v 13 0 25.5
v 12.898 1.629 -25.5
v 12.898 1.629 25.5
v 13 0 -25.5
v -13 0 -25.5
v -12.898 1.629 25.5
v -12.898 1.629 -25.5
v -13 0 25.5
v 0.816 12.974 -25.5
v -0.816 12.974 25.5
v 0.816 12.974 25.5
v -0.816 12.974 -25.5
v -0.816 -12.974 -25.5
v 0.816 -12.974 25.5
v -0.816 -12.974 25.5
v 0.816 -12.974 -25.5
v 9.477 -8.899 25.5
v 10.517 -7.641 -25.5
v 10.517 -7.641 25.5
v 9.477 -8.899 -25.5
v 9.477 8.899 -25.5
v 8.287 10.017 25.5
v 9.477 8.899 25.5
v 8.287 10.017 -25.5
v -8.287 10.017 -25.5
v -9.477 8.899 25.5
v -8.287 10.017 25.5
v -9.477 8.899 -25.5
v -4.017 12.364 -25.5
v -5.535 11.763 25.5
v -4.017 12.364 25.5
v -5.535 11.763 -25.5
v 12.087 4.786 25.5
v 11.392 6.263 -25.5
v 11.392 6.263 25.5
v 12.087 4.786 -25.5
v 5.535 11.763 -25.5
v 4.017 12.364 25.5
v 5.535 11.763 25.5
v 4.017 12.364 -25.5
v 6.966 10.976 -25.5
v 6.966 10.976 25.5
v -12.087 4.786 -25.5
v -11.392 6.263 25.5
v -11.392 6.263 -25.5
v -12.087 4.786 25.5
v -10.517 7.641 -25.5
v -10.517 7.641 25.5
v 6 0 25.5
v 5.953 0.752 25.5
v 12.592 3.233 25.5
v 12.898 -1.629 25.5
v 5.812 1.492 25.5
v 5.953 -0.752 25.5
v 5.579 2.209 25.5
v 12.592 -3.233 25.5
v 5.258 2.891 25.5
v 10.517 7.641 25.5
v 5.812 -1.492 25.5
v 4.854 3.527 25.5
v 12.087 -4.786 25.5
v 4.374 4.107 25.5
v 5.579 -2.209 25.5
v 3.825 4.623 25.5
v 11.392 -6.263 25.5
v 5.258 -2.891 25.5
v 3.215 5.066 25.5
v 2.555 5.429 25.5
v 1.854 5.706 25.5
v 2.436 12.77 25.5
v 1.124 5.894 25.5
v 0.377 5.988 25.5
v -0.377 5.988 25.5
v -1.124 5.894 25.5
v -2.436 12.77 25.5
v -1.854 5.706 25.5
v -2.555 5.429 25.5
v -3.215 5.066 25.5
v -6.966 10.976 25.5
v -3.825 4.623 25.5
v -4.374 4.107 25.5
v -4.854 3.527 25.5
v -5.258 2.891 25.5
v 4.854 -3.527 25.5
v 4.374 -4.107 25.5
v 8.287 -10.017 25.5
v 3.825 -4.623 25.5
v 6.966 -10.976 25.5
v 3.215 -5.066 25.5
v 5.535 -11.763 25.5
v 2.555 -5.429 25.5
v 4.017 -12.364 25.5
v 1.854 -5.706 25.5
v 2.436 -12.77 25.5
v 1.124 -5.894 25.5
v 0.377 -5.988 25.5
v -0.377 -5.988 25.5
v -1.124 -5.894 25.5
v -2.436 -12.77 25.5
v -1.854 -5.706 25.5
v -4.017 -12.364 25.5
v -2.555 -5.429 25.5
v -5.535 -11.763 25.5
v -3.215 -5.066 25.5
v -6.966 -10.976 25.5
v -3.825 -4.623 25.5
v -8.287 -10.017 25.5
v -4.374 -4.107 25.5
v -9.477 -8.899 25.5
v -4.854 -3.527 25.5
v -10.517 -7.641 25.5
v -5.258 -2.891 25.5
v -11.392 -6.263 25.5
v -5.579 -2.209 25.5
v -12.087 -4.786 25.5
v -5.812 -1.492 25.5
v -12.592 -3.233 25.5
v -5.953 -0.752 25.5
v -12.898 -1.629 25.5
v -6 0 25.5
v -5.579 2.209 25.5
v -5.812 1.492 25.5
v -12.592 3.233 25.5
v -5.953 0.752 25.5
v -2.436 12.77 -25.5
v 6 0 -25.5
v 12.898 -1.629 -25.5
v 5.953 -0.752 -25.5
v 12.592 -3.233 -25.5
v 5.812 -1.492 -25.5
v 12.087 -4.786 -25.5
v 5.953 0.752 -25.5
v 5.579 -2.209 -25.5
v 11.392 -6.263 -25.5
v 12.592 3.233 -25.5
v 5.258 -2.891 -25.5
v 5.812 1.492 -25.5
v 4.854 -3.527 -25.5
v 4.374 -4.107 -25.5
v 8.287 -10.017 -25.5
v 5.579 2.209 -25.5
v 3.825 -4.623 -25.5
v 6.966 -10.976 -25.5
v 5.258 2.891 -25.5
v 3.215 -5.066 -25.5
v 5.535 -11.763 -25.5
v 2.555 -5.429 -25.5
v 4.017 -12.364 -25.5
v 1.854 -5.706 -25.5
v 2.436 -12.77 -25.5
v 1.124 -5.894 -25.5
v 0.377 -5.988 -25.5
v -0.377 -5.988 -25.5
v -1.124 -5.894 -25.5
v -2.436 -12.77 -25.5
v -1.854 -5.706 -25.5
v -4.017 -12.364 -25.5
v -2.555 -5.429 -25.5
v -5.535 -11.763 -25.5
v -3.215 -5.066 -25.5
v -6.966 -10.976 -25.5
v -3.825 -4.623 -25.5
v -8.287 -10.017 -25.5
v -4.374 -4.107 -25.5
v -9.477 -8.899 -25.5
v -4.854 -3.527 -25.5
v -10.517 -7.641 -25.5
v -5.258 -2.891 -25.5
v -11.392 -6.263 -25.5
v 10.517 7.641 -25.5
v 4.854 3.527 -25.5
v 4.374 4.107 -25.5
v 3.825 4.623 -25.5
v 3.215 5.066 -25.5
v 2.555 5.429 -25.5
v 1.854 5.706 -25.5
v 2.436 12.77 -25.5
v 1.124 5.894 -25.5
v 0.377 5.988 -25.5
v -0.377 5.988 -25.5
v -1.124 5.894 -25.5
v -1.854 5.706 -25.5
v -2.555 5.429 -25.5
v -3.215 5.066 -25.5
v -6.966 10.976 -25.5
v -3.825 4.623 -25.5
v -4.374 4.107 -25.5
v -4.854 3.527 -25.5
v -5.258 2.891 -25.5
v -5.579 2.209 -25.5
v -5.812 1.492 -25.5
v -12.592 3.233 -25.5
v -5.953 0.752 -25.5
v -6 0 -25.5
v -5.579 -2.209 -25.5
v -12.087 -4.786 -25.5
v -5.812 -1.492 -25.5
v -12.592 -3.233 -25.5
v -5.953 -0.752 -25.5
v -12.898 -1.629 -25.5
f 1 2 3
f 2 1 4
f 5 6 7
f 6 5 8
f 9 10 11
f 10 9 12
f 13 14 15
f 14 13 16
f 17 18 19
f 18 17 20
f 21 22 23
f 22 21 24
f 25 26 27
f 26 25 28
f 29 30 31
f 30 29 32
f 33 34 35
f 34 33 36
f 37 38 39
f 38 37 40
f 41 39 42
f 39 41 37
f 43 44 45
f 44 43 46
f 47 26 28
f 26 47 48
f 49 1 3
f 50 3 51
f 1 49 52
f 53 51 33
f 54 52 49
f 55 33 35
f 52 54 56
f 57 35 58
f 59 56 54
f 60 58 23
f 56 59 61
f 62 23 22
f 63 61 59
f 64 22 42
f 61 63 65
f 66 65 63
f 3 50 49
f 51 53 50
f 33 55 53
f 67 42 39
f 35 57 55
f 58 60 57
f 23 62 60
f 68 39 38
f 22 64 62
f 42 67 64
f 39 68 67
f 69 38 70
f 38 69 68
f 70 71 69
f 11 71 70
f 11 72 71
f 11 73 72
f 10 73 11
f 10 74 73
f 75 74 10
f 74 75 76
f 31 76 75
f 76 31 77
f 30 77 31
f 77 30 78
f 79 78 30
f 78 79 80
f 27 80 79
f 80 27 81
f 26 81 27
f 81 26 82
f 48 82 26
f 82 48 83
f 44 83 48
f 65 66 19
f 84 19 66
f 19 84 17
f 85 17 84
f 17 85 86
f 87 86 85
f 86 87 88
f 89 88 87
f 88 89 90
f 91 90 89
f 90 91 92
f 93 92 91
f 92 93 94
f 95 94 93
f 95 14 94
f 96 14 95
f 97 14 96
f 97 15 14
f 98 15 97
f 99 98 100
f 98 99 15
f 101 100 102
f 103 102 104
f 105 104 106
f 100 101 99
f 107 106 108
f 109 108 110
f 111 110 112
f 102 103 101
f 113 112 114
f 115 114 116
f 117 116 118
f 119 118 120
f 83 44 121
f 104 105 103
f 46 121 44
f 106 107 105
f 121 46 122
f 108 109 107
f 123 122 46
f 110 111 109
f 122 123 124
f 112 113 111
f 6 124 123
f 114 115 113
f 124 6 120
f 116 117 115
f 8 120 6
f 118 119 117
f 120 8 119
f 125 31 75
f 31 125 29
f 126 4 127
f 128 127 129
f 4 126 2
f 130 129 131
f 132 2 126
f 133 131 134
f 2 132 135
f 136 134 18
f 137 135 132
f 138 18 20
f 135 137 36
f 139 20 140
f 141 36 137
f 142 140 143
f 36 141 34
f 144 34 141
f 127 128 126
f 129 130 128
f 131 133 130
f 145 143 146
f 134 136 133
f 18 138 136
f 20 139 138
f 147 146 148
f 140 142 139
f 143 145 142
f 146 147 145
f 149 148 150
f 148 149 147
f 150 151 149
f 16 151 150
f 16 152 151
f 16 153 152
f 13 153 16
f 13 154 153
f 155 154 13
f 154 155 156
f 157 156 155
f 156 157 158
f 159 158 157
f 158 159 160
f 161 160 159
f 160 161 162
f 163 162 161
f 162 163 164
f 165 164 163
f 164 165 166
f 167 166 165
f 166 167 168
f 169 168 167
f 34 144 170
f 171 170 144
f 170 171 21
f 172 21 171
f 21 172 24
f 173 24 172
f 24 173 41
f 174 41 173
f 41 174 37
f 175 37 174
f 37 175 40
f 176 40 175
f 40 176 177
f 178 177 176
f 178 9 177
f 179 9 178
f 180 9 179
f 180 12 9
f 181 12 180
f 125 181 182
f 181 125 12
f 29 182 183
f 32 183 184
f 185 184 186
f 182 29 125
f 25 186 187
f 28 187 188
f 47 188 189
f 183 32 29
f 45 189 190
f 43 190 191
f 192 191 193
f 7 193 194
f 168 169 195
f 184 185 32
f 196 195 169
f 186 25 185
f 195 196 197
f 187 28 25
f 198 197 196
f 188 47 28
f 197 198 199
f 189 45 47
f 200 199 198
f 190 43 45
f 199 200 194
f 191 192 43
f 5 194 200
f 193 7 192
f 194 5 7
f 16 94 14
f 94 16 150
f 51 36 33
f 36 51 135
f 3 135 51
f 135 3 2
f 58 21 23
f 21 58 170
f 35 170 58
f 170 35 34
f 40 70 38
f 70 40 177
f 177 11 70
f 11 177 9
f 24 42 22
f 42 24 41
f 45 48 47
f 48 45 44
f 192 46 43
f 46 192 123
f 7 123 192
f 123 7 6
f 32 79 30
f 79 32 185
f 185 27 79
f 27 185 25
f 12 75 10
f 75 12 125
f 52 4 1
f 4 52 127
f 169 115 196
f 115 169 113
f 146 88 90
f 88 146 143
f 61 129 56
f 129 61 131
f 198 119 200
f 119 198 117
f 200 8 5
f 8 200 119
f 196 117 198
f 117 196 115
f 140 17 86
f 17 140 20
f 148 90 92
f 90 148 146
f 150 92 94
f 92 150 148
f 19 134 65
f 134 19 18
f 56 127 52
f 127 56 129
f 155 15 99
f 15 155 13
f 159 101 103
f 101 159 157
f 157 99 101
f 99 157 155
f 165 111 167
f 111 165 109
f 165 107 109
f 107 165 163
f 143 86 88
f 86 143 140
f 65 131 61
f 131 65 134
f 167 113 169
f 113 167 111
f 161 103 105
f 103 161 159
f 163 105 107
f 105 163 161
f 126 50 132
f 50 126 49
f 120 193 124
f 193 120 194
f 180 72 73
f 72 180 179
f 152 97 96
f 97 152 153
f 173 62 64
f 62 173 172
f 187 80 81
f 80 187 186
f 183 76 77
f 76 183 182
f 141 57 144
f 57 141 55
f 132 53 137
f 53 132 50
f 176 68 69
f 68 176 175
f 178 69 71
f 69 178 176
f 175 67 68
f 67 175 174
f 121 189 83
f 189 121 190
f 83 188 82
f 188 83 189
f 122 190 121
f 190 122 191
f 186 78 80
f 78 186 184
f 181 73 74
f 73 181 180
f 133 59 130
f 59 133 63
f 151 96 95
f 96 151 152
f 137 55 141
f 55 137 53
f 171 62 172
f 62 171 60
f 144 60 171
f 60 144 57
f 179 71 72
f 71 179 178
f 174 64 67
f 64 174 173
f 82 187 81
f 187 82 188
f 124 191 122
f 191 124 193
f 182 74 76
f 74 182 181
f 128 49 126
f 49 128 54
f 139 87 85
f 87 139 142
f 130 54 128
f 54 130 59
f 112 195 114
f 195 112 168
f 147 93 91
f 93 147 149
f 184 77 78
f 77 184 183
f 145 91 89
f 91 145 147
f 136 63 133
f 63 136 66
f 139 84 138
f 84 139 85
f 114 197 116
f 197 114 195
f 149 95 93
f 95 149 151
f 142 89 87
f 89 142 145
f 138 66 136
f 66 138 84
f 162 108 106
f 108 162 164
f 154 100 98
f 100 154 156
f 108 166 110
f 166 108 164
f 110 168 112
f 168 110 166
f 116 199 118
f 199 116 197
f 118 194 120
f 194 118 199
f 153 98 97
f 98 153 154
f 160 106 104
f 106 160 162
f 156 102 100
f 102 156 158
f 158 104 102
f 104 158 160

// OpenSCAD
$fn = 50;


difference() {
	union() {
		translate(v = [0, 0, -25.5000000000]) {
			cylinder(h = 51, r = 13.0000000000);
		}
	}
	union() {
		translate(v = [0, 0, -100.0000000000]) {
			cylinder(h = 200, r = 6);
		}
	}
}
